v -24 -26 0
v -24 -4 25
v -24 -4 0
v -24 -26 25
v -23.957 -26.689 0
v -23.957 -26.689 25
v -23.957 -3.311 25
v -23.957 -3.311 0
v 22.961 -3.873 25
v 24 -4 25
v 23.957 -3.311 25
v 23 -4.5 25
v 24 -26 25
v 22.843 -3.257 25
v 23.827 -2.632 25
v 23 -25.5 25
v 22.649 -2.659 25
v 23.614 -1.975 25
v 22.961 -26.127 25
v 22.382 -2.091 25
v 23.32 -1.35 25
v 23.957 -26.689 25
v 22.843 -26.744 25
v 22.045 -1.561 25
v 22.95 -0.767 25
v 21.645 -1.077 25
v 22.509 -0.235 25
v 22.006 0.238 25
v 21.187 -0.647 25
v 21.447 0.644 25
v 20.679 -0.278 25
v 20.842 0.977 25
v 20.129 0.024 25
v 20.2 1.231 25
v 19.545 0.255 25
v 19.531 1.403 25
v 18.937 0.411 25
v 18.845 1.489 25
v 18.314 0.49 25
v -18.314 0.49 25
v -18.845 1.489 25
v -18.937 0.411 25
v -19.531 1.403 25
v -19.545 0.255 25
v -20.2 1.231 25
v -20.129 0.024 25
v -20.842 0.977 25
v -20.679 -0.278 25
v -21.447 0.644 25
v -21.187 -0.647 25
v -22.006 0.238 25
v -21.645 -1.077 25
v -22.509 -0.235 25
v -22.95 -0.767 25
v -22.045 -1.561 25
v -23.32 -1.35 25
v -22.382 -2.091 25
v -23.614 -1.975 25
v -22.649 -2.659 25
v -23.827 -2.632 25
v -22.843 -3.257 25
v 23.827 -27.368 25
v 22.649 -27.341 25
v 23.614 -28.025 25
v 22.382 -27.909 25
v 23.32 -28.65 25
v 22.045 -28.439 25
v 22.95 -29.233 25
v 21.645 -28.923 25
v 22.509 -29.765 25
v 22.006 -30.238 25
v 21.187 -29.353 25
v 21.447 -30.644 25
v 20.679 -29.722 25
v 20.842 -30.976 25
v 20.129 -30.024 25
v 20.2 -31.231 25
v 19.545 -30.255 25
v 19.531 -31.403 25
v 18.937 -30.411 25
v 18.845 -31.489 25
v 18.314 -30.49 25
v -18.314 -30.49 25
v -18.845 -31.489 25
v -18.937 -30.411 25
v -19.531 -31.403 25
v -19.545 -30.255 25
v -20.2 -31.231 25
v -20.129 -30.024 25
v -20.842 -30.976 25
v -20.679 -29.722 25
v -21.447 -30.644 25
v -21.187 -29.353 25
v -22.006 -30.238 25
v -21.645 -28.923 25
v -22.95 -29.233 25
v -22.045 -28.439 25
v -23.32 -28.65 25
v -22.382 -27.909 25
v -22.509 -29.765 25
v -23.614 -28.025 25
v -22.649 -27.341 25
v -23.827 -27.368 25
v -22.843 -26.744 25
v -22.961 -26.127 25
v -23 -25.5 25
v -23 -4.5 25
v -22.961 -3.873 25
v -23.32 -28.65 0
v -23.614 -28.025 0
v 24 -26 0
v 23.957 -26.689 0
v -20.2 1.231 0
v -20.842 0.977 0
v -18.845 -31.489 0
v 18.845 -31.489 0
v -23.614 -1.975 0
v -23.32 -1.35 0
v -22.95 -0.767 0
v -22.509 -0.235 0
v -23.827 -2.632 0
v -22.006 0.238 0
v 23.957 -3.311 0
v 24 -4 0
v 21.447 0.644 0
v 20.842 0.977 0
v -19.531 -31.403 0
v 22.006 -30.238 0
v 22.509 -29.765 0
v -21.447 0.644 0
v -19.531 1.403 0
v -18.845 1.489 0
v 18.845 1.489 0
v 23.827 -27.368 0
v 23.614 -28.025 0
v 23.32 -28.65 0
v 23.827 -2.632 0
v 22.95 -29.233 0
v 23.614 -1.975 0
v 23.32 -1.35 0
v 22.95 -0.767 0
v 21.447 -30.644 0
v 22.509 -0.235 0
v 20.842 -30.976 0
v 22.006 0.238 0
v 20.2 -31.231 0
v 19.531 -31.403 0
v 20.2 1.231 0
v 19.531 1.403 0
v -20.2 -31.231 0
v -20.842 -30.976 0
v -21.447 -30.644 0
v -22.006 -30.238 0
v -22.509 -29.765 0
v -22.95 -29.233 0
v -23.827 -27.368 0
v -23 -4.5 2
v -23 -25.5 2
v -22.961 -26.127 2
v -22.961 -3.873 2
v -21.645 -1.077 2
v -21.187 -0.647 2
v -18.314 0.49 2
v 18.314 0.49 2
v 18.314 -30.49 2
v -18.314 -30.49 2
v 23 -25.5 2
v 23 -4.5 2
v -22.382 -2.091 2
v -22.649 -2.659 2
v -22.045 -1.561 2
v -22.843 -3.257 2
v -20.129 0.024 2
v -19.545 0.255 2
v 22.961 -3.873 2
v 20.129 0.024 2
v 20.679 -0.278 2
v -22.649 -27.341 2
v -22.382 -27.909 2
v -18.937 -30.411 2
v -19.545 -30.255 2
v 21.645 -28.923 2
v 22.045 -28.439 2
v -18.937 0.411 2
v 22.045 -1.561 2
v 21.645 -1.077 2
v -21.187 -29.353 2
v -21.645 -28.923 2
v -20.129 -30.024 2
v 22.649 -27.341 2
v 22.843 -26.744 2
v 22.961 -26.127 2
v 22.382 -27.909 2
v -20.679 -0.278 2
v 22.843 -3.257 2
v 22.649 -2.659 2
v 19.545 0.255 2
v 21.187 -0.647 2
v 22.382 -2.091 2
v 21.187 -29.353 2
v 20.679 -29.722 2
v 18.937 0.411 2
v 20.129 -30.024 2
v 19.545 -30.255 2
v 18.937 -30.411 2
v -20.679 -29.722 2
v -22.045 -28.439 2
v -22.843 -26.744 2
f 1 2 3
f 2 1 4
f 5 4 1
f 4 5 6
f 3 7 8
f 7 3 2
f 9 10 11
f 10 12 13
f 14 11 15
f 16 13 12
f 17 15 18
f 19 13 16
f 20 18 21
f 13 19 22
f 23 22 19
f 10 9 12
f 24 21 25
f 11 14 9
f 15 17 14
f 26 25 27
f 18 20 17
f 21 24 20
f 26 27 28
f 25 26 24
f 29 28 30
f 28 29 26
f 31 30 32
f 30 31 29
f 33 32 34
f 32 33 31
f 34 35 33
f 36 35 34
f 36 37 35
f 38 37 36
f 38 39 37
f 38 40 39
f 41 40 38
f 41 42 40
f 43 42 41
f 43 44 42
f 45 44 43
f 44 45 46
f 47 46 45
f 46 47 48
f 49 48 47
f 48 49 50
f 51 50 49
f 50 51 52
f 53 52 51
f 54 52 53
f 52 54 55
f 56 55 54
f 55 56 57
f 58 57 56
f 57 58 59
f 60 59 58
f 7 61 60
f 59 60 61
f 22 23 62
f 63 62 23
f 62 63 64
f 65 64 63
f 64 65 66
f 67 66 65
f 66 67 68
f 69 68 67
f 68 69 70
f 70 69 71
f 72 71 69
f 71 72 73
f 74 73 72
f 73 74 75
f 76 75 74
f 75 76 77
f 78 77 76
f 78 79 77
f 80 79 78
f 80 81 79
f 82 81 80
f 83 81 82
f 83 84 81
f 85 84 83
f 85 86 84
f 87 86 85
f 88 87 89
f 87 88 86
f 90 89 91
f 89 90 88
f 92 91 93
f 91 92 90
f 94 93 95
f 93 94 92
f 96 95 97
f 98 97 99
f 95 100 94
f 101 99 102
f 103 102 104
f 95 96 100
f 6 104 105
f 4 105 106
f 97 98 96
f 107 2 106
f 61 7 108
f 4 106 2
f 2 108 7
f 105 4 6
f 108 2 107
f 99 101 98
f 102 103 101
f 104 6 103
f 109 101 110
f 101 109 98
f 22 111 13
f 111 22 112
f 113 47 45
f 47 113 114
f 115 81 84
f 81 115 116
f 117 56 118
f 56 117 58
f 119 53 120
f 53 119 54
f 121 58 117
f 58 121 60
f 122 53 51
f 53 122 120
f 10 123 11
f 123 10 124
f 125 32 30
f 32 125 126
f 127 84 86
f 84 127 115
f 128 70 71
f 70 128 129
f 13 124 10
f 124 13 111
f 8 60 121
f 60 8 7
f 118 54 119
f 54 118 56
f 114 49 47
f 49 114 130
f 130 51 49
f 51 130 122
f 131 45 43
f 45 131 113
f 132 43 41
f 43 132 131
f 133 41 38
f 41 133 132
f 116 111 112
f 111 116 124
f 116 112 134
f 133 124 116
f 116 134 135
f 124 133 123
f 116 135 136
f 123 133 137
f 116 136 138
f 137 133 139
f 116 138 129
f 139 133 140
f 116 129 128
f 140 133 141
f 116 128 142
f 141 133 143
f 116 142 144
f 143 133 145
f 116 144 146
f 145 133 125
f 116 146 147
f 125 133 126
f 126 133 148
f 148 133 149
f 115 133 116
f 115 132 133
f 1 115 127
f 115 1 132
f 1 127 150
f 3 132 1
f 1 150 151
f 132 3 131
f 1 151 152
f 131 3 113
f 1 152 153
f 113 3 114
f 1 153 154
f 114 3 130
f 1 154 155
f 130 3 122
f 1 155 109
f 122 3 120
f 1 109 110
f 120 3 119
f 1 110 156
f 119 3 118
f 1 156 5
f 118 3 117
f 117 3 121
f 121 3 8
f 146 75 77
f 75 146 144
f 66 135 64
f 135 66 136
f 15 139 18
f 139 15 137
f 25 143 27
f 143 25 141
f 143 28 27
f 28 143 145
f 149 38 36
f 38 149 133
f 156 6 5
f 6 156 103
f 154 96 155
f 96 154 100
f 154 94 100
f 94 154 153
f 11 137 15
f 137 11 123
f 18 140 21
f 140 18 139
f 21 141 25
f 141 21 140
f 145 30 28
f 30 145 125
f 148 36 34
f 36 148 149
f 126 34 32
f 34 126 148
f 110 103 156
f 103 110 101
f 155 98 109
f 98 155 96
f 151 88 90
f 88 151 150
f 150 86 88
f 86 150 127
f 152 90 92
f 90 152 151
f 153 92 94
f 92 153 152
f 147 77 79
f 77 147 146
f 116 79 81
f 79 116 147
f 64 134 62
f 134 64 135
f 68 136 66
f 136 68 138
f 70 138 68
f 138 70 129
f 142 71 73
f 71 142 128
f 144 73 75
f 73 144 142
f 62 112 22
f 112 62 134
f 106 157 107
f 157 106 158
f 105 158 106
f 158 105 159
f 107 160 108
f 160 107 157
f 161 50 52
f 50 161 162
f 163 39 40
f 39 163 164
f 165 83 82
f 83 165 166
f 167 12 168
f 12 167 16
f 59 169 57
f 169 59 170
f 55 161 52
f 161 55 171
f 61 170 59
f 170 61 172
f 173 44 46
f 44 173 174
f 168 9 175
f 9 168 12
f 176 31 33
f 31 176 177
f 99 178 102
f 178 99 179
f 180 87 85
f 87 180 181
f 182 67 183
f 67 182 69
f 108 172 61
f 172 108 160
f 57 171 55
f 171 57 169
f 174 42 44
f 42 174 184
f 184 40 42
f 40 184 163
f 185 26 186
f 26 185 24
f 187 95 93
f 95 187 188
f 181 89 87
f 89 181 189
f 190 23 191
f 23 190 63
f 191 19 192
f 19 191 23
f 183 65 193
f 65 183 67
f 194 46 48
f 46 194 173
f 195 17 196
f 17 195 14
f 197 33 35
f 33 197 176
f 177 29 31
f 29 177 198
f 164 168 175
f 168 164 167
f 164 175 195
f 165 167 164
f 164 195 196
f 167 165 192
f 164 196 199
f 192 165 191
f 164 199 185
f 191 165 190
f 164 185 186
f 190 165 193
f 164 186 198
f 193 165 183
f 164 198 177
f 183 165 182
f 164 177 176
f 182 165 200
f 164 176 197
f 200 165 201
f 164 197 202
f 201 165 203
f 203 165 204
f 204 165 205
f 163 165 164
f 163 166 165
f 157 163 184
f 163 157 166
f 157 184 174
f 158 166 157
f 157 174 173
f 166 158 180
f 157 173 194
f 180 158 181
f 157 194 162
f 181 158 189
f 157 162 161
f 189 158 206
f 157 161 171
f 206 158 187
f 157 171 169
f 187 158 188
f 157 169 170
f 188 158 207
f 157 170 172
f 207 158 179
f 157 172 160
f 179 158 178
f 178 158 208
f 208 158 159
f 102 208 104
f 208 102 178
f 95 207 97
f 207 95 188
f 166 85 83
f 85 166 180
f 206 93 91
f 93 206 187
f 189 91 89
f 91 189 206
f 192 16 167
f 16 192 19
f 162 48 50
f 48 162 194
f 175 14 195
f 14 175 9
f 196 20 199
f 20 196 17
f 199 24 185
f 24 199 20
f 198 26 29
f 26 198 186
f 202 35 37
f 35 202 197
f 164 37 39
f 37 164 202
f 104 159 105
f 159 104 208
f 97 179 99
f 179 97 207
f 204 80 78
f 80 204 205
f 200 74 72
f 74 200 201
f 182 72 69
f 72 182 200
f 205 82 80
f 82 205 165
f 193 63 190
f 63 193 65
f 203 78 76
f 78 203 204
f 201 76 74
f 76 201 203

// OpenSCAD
$fn = 50;


difference() {
	union() {
		translate(v = [0, -15.0000000000, 0]) {
			hull() {
				translate(v = [-18.5000000000, 11.0000000000, 0]) {
					cylinder(h = 25, r = 5.5000000000);
				}
				translate(v = [18.5000000000, 11.0000000000, 0]) {
					cylinder(h = 25, r = 5.5000000000);
				}
				translate(v = [-18.5000000000, -11.0000000000, 0]) {
					cylinder(h = 25, r = 5.5000000000);
				}
				translate(v = [18.5000000000, -11.0000000000, 0]) {
					cylinder(h = 25, r = 5.5000000000);
				}
			}
		}
	}
	union() {
		translate(v = [0, -15.0000000000, 2]) {
			hull() {
				translate(v = [-18.0000000000, 10.5000000000, 0]) {
					cylinder(h = 50, r = 5);
				}
				translate(v = [18.0000000000, 10.5000000000, 0]) {
					cylinder(h = 50, r = 5);
				}
				translate(v = [-18.0000000000, -10.5000000000, 0]) {
					cylinder(h = 50, r = 5);
				}
				translate(v = [18.0000000000, -10.5000000000, 0]) {
					cylinder(h = 50, r = 5);
				}
			}
		}
	}
}
